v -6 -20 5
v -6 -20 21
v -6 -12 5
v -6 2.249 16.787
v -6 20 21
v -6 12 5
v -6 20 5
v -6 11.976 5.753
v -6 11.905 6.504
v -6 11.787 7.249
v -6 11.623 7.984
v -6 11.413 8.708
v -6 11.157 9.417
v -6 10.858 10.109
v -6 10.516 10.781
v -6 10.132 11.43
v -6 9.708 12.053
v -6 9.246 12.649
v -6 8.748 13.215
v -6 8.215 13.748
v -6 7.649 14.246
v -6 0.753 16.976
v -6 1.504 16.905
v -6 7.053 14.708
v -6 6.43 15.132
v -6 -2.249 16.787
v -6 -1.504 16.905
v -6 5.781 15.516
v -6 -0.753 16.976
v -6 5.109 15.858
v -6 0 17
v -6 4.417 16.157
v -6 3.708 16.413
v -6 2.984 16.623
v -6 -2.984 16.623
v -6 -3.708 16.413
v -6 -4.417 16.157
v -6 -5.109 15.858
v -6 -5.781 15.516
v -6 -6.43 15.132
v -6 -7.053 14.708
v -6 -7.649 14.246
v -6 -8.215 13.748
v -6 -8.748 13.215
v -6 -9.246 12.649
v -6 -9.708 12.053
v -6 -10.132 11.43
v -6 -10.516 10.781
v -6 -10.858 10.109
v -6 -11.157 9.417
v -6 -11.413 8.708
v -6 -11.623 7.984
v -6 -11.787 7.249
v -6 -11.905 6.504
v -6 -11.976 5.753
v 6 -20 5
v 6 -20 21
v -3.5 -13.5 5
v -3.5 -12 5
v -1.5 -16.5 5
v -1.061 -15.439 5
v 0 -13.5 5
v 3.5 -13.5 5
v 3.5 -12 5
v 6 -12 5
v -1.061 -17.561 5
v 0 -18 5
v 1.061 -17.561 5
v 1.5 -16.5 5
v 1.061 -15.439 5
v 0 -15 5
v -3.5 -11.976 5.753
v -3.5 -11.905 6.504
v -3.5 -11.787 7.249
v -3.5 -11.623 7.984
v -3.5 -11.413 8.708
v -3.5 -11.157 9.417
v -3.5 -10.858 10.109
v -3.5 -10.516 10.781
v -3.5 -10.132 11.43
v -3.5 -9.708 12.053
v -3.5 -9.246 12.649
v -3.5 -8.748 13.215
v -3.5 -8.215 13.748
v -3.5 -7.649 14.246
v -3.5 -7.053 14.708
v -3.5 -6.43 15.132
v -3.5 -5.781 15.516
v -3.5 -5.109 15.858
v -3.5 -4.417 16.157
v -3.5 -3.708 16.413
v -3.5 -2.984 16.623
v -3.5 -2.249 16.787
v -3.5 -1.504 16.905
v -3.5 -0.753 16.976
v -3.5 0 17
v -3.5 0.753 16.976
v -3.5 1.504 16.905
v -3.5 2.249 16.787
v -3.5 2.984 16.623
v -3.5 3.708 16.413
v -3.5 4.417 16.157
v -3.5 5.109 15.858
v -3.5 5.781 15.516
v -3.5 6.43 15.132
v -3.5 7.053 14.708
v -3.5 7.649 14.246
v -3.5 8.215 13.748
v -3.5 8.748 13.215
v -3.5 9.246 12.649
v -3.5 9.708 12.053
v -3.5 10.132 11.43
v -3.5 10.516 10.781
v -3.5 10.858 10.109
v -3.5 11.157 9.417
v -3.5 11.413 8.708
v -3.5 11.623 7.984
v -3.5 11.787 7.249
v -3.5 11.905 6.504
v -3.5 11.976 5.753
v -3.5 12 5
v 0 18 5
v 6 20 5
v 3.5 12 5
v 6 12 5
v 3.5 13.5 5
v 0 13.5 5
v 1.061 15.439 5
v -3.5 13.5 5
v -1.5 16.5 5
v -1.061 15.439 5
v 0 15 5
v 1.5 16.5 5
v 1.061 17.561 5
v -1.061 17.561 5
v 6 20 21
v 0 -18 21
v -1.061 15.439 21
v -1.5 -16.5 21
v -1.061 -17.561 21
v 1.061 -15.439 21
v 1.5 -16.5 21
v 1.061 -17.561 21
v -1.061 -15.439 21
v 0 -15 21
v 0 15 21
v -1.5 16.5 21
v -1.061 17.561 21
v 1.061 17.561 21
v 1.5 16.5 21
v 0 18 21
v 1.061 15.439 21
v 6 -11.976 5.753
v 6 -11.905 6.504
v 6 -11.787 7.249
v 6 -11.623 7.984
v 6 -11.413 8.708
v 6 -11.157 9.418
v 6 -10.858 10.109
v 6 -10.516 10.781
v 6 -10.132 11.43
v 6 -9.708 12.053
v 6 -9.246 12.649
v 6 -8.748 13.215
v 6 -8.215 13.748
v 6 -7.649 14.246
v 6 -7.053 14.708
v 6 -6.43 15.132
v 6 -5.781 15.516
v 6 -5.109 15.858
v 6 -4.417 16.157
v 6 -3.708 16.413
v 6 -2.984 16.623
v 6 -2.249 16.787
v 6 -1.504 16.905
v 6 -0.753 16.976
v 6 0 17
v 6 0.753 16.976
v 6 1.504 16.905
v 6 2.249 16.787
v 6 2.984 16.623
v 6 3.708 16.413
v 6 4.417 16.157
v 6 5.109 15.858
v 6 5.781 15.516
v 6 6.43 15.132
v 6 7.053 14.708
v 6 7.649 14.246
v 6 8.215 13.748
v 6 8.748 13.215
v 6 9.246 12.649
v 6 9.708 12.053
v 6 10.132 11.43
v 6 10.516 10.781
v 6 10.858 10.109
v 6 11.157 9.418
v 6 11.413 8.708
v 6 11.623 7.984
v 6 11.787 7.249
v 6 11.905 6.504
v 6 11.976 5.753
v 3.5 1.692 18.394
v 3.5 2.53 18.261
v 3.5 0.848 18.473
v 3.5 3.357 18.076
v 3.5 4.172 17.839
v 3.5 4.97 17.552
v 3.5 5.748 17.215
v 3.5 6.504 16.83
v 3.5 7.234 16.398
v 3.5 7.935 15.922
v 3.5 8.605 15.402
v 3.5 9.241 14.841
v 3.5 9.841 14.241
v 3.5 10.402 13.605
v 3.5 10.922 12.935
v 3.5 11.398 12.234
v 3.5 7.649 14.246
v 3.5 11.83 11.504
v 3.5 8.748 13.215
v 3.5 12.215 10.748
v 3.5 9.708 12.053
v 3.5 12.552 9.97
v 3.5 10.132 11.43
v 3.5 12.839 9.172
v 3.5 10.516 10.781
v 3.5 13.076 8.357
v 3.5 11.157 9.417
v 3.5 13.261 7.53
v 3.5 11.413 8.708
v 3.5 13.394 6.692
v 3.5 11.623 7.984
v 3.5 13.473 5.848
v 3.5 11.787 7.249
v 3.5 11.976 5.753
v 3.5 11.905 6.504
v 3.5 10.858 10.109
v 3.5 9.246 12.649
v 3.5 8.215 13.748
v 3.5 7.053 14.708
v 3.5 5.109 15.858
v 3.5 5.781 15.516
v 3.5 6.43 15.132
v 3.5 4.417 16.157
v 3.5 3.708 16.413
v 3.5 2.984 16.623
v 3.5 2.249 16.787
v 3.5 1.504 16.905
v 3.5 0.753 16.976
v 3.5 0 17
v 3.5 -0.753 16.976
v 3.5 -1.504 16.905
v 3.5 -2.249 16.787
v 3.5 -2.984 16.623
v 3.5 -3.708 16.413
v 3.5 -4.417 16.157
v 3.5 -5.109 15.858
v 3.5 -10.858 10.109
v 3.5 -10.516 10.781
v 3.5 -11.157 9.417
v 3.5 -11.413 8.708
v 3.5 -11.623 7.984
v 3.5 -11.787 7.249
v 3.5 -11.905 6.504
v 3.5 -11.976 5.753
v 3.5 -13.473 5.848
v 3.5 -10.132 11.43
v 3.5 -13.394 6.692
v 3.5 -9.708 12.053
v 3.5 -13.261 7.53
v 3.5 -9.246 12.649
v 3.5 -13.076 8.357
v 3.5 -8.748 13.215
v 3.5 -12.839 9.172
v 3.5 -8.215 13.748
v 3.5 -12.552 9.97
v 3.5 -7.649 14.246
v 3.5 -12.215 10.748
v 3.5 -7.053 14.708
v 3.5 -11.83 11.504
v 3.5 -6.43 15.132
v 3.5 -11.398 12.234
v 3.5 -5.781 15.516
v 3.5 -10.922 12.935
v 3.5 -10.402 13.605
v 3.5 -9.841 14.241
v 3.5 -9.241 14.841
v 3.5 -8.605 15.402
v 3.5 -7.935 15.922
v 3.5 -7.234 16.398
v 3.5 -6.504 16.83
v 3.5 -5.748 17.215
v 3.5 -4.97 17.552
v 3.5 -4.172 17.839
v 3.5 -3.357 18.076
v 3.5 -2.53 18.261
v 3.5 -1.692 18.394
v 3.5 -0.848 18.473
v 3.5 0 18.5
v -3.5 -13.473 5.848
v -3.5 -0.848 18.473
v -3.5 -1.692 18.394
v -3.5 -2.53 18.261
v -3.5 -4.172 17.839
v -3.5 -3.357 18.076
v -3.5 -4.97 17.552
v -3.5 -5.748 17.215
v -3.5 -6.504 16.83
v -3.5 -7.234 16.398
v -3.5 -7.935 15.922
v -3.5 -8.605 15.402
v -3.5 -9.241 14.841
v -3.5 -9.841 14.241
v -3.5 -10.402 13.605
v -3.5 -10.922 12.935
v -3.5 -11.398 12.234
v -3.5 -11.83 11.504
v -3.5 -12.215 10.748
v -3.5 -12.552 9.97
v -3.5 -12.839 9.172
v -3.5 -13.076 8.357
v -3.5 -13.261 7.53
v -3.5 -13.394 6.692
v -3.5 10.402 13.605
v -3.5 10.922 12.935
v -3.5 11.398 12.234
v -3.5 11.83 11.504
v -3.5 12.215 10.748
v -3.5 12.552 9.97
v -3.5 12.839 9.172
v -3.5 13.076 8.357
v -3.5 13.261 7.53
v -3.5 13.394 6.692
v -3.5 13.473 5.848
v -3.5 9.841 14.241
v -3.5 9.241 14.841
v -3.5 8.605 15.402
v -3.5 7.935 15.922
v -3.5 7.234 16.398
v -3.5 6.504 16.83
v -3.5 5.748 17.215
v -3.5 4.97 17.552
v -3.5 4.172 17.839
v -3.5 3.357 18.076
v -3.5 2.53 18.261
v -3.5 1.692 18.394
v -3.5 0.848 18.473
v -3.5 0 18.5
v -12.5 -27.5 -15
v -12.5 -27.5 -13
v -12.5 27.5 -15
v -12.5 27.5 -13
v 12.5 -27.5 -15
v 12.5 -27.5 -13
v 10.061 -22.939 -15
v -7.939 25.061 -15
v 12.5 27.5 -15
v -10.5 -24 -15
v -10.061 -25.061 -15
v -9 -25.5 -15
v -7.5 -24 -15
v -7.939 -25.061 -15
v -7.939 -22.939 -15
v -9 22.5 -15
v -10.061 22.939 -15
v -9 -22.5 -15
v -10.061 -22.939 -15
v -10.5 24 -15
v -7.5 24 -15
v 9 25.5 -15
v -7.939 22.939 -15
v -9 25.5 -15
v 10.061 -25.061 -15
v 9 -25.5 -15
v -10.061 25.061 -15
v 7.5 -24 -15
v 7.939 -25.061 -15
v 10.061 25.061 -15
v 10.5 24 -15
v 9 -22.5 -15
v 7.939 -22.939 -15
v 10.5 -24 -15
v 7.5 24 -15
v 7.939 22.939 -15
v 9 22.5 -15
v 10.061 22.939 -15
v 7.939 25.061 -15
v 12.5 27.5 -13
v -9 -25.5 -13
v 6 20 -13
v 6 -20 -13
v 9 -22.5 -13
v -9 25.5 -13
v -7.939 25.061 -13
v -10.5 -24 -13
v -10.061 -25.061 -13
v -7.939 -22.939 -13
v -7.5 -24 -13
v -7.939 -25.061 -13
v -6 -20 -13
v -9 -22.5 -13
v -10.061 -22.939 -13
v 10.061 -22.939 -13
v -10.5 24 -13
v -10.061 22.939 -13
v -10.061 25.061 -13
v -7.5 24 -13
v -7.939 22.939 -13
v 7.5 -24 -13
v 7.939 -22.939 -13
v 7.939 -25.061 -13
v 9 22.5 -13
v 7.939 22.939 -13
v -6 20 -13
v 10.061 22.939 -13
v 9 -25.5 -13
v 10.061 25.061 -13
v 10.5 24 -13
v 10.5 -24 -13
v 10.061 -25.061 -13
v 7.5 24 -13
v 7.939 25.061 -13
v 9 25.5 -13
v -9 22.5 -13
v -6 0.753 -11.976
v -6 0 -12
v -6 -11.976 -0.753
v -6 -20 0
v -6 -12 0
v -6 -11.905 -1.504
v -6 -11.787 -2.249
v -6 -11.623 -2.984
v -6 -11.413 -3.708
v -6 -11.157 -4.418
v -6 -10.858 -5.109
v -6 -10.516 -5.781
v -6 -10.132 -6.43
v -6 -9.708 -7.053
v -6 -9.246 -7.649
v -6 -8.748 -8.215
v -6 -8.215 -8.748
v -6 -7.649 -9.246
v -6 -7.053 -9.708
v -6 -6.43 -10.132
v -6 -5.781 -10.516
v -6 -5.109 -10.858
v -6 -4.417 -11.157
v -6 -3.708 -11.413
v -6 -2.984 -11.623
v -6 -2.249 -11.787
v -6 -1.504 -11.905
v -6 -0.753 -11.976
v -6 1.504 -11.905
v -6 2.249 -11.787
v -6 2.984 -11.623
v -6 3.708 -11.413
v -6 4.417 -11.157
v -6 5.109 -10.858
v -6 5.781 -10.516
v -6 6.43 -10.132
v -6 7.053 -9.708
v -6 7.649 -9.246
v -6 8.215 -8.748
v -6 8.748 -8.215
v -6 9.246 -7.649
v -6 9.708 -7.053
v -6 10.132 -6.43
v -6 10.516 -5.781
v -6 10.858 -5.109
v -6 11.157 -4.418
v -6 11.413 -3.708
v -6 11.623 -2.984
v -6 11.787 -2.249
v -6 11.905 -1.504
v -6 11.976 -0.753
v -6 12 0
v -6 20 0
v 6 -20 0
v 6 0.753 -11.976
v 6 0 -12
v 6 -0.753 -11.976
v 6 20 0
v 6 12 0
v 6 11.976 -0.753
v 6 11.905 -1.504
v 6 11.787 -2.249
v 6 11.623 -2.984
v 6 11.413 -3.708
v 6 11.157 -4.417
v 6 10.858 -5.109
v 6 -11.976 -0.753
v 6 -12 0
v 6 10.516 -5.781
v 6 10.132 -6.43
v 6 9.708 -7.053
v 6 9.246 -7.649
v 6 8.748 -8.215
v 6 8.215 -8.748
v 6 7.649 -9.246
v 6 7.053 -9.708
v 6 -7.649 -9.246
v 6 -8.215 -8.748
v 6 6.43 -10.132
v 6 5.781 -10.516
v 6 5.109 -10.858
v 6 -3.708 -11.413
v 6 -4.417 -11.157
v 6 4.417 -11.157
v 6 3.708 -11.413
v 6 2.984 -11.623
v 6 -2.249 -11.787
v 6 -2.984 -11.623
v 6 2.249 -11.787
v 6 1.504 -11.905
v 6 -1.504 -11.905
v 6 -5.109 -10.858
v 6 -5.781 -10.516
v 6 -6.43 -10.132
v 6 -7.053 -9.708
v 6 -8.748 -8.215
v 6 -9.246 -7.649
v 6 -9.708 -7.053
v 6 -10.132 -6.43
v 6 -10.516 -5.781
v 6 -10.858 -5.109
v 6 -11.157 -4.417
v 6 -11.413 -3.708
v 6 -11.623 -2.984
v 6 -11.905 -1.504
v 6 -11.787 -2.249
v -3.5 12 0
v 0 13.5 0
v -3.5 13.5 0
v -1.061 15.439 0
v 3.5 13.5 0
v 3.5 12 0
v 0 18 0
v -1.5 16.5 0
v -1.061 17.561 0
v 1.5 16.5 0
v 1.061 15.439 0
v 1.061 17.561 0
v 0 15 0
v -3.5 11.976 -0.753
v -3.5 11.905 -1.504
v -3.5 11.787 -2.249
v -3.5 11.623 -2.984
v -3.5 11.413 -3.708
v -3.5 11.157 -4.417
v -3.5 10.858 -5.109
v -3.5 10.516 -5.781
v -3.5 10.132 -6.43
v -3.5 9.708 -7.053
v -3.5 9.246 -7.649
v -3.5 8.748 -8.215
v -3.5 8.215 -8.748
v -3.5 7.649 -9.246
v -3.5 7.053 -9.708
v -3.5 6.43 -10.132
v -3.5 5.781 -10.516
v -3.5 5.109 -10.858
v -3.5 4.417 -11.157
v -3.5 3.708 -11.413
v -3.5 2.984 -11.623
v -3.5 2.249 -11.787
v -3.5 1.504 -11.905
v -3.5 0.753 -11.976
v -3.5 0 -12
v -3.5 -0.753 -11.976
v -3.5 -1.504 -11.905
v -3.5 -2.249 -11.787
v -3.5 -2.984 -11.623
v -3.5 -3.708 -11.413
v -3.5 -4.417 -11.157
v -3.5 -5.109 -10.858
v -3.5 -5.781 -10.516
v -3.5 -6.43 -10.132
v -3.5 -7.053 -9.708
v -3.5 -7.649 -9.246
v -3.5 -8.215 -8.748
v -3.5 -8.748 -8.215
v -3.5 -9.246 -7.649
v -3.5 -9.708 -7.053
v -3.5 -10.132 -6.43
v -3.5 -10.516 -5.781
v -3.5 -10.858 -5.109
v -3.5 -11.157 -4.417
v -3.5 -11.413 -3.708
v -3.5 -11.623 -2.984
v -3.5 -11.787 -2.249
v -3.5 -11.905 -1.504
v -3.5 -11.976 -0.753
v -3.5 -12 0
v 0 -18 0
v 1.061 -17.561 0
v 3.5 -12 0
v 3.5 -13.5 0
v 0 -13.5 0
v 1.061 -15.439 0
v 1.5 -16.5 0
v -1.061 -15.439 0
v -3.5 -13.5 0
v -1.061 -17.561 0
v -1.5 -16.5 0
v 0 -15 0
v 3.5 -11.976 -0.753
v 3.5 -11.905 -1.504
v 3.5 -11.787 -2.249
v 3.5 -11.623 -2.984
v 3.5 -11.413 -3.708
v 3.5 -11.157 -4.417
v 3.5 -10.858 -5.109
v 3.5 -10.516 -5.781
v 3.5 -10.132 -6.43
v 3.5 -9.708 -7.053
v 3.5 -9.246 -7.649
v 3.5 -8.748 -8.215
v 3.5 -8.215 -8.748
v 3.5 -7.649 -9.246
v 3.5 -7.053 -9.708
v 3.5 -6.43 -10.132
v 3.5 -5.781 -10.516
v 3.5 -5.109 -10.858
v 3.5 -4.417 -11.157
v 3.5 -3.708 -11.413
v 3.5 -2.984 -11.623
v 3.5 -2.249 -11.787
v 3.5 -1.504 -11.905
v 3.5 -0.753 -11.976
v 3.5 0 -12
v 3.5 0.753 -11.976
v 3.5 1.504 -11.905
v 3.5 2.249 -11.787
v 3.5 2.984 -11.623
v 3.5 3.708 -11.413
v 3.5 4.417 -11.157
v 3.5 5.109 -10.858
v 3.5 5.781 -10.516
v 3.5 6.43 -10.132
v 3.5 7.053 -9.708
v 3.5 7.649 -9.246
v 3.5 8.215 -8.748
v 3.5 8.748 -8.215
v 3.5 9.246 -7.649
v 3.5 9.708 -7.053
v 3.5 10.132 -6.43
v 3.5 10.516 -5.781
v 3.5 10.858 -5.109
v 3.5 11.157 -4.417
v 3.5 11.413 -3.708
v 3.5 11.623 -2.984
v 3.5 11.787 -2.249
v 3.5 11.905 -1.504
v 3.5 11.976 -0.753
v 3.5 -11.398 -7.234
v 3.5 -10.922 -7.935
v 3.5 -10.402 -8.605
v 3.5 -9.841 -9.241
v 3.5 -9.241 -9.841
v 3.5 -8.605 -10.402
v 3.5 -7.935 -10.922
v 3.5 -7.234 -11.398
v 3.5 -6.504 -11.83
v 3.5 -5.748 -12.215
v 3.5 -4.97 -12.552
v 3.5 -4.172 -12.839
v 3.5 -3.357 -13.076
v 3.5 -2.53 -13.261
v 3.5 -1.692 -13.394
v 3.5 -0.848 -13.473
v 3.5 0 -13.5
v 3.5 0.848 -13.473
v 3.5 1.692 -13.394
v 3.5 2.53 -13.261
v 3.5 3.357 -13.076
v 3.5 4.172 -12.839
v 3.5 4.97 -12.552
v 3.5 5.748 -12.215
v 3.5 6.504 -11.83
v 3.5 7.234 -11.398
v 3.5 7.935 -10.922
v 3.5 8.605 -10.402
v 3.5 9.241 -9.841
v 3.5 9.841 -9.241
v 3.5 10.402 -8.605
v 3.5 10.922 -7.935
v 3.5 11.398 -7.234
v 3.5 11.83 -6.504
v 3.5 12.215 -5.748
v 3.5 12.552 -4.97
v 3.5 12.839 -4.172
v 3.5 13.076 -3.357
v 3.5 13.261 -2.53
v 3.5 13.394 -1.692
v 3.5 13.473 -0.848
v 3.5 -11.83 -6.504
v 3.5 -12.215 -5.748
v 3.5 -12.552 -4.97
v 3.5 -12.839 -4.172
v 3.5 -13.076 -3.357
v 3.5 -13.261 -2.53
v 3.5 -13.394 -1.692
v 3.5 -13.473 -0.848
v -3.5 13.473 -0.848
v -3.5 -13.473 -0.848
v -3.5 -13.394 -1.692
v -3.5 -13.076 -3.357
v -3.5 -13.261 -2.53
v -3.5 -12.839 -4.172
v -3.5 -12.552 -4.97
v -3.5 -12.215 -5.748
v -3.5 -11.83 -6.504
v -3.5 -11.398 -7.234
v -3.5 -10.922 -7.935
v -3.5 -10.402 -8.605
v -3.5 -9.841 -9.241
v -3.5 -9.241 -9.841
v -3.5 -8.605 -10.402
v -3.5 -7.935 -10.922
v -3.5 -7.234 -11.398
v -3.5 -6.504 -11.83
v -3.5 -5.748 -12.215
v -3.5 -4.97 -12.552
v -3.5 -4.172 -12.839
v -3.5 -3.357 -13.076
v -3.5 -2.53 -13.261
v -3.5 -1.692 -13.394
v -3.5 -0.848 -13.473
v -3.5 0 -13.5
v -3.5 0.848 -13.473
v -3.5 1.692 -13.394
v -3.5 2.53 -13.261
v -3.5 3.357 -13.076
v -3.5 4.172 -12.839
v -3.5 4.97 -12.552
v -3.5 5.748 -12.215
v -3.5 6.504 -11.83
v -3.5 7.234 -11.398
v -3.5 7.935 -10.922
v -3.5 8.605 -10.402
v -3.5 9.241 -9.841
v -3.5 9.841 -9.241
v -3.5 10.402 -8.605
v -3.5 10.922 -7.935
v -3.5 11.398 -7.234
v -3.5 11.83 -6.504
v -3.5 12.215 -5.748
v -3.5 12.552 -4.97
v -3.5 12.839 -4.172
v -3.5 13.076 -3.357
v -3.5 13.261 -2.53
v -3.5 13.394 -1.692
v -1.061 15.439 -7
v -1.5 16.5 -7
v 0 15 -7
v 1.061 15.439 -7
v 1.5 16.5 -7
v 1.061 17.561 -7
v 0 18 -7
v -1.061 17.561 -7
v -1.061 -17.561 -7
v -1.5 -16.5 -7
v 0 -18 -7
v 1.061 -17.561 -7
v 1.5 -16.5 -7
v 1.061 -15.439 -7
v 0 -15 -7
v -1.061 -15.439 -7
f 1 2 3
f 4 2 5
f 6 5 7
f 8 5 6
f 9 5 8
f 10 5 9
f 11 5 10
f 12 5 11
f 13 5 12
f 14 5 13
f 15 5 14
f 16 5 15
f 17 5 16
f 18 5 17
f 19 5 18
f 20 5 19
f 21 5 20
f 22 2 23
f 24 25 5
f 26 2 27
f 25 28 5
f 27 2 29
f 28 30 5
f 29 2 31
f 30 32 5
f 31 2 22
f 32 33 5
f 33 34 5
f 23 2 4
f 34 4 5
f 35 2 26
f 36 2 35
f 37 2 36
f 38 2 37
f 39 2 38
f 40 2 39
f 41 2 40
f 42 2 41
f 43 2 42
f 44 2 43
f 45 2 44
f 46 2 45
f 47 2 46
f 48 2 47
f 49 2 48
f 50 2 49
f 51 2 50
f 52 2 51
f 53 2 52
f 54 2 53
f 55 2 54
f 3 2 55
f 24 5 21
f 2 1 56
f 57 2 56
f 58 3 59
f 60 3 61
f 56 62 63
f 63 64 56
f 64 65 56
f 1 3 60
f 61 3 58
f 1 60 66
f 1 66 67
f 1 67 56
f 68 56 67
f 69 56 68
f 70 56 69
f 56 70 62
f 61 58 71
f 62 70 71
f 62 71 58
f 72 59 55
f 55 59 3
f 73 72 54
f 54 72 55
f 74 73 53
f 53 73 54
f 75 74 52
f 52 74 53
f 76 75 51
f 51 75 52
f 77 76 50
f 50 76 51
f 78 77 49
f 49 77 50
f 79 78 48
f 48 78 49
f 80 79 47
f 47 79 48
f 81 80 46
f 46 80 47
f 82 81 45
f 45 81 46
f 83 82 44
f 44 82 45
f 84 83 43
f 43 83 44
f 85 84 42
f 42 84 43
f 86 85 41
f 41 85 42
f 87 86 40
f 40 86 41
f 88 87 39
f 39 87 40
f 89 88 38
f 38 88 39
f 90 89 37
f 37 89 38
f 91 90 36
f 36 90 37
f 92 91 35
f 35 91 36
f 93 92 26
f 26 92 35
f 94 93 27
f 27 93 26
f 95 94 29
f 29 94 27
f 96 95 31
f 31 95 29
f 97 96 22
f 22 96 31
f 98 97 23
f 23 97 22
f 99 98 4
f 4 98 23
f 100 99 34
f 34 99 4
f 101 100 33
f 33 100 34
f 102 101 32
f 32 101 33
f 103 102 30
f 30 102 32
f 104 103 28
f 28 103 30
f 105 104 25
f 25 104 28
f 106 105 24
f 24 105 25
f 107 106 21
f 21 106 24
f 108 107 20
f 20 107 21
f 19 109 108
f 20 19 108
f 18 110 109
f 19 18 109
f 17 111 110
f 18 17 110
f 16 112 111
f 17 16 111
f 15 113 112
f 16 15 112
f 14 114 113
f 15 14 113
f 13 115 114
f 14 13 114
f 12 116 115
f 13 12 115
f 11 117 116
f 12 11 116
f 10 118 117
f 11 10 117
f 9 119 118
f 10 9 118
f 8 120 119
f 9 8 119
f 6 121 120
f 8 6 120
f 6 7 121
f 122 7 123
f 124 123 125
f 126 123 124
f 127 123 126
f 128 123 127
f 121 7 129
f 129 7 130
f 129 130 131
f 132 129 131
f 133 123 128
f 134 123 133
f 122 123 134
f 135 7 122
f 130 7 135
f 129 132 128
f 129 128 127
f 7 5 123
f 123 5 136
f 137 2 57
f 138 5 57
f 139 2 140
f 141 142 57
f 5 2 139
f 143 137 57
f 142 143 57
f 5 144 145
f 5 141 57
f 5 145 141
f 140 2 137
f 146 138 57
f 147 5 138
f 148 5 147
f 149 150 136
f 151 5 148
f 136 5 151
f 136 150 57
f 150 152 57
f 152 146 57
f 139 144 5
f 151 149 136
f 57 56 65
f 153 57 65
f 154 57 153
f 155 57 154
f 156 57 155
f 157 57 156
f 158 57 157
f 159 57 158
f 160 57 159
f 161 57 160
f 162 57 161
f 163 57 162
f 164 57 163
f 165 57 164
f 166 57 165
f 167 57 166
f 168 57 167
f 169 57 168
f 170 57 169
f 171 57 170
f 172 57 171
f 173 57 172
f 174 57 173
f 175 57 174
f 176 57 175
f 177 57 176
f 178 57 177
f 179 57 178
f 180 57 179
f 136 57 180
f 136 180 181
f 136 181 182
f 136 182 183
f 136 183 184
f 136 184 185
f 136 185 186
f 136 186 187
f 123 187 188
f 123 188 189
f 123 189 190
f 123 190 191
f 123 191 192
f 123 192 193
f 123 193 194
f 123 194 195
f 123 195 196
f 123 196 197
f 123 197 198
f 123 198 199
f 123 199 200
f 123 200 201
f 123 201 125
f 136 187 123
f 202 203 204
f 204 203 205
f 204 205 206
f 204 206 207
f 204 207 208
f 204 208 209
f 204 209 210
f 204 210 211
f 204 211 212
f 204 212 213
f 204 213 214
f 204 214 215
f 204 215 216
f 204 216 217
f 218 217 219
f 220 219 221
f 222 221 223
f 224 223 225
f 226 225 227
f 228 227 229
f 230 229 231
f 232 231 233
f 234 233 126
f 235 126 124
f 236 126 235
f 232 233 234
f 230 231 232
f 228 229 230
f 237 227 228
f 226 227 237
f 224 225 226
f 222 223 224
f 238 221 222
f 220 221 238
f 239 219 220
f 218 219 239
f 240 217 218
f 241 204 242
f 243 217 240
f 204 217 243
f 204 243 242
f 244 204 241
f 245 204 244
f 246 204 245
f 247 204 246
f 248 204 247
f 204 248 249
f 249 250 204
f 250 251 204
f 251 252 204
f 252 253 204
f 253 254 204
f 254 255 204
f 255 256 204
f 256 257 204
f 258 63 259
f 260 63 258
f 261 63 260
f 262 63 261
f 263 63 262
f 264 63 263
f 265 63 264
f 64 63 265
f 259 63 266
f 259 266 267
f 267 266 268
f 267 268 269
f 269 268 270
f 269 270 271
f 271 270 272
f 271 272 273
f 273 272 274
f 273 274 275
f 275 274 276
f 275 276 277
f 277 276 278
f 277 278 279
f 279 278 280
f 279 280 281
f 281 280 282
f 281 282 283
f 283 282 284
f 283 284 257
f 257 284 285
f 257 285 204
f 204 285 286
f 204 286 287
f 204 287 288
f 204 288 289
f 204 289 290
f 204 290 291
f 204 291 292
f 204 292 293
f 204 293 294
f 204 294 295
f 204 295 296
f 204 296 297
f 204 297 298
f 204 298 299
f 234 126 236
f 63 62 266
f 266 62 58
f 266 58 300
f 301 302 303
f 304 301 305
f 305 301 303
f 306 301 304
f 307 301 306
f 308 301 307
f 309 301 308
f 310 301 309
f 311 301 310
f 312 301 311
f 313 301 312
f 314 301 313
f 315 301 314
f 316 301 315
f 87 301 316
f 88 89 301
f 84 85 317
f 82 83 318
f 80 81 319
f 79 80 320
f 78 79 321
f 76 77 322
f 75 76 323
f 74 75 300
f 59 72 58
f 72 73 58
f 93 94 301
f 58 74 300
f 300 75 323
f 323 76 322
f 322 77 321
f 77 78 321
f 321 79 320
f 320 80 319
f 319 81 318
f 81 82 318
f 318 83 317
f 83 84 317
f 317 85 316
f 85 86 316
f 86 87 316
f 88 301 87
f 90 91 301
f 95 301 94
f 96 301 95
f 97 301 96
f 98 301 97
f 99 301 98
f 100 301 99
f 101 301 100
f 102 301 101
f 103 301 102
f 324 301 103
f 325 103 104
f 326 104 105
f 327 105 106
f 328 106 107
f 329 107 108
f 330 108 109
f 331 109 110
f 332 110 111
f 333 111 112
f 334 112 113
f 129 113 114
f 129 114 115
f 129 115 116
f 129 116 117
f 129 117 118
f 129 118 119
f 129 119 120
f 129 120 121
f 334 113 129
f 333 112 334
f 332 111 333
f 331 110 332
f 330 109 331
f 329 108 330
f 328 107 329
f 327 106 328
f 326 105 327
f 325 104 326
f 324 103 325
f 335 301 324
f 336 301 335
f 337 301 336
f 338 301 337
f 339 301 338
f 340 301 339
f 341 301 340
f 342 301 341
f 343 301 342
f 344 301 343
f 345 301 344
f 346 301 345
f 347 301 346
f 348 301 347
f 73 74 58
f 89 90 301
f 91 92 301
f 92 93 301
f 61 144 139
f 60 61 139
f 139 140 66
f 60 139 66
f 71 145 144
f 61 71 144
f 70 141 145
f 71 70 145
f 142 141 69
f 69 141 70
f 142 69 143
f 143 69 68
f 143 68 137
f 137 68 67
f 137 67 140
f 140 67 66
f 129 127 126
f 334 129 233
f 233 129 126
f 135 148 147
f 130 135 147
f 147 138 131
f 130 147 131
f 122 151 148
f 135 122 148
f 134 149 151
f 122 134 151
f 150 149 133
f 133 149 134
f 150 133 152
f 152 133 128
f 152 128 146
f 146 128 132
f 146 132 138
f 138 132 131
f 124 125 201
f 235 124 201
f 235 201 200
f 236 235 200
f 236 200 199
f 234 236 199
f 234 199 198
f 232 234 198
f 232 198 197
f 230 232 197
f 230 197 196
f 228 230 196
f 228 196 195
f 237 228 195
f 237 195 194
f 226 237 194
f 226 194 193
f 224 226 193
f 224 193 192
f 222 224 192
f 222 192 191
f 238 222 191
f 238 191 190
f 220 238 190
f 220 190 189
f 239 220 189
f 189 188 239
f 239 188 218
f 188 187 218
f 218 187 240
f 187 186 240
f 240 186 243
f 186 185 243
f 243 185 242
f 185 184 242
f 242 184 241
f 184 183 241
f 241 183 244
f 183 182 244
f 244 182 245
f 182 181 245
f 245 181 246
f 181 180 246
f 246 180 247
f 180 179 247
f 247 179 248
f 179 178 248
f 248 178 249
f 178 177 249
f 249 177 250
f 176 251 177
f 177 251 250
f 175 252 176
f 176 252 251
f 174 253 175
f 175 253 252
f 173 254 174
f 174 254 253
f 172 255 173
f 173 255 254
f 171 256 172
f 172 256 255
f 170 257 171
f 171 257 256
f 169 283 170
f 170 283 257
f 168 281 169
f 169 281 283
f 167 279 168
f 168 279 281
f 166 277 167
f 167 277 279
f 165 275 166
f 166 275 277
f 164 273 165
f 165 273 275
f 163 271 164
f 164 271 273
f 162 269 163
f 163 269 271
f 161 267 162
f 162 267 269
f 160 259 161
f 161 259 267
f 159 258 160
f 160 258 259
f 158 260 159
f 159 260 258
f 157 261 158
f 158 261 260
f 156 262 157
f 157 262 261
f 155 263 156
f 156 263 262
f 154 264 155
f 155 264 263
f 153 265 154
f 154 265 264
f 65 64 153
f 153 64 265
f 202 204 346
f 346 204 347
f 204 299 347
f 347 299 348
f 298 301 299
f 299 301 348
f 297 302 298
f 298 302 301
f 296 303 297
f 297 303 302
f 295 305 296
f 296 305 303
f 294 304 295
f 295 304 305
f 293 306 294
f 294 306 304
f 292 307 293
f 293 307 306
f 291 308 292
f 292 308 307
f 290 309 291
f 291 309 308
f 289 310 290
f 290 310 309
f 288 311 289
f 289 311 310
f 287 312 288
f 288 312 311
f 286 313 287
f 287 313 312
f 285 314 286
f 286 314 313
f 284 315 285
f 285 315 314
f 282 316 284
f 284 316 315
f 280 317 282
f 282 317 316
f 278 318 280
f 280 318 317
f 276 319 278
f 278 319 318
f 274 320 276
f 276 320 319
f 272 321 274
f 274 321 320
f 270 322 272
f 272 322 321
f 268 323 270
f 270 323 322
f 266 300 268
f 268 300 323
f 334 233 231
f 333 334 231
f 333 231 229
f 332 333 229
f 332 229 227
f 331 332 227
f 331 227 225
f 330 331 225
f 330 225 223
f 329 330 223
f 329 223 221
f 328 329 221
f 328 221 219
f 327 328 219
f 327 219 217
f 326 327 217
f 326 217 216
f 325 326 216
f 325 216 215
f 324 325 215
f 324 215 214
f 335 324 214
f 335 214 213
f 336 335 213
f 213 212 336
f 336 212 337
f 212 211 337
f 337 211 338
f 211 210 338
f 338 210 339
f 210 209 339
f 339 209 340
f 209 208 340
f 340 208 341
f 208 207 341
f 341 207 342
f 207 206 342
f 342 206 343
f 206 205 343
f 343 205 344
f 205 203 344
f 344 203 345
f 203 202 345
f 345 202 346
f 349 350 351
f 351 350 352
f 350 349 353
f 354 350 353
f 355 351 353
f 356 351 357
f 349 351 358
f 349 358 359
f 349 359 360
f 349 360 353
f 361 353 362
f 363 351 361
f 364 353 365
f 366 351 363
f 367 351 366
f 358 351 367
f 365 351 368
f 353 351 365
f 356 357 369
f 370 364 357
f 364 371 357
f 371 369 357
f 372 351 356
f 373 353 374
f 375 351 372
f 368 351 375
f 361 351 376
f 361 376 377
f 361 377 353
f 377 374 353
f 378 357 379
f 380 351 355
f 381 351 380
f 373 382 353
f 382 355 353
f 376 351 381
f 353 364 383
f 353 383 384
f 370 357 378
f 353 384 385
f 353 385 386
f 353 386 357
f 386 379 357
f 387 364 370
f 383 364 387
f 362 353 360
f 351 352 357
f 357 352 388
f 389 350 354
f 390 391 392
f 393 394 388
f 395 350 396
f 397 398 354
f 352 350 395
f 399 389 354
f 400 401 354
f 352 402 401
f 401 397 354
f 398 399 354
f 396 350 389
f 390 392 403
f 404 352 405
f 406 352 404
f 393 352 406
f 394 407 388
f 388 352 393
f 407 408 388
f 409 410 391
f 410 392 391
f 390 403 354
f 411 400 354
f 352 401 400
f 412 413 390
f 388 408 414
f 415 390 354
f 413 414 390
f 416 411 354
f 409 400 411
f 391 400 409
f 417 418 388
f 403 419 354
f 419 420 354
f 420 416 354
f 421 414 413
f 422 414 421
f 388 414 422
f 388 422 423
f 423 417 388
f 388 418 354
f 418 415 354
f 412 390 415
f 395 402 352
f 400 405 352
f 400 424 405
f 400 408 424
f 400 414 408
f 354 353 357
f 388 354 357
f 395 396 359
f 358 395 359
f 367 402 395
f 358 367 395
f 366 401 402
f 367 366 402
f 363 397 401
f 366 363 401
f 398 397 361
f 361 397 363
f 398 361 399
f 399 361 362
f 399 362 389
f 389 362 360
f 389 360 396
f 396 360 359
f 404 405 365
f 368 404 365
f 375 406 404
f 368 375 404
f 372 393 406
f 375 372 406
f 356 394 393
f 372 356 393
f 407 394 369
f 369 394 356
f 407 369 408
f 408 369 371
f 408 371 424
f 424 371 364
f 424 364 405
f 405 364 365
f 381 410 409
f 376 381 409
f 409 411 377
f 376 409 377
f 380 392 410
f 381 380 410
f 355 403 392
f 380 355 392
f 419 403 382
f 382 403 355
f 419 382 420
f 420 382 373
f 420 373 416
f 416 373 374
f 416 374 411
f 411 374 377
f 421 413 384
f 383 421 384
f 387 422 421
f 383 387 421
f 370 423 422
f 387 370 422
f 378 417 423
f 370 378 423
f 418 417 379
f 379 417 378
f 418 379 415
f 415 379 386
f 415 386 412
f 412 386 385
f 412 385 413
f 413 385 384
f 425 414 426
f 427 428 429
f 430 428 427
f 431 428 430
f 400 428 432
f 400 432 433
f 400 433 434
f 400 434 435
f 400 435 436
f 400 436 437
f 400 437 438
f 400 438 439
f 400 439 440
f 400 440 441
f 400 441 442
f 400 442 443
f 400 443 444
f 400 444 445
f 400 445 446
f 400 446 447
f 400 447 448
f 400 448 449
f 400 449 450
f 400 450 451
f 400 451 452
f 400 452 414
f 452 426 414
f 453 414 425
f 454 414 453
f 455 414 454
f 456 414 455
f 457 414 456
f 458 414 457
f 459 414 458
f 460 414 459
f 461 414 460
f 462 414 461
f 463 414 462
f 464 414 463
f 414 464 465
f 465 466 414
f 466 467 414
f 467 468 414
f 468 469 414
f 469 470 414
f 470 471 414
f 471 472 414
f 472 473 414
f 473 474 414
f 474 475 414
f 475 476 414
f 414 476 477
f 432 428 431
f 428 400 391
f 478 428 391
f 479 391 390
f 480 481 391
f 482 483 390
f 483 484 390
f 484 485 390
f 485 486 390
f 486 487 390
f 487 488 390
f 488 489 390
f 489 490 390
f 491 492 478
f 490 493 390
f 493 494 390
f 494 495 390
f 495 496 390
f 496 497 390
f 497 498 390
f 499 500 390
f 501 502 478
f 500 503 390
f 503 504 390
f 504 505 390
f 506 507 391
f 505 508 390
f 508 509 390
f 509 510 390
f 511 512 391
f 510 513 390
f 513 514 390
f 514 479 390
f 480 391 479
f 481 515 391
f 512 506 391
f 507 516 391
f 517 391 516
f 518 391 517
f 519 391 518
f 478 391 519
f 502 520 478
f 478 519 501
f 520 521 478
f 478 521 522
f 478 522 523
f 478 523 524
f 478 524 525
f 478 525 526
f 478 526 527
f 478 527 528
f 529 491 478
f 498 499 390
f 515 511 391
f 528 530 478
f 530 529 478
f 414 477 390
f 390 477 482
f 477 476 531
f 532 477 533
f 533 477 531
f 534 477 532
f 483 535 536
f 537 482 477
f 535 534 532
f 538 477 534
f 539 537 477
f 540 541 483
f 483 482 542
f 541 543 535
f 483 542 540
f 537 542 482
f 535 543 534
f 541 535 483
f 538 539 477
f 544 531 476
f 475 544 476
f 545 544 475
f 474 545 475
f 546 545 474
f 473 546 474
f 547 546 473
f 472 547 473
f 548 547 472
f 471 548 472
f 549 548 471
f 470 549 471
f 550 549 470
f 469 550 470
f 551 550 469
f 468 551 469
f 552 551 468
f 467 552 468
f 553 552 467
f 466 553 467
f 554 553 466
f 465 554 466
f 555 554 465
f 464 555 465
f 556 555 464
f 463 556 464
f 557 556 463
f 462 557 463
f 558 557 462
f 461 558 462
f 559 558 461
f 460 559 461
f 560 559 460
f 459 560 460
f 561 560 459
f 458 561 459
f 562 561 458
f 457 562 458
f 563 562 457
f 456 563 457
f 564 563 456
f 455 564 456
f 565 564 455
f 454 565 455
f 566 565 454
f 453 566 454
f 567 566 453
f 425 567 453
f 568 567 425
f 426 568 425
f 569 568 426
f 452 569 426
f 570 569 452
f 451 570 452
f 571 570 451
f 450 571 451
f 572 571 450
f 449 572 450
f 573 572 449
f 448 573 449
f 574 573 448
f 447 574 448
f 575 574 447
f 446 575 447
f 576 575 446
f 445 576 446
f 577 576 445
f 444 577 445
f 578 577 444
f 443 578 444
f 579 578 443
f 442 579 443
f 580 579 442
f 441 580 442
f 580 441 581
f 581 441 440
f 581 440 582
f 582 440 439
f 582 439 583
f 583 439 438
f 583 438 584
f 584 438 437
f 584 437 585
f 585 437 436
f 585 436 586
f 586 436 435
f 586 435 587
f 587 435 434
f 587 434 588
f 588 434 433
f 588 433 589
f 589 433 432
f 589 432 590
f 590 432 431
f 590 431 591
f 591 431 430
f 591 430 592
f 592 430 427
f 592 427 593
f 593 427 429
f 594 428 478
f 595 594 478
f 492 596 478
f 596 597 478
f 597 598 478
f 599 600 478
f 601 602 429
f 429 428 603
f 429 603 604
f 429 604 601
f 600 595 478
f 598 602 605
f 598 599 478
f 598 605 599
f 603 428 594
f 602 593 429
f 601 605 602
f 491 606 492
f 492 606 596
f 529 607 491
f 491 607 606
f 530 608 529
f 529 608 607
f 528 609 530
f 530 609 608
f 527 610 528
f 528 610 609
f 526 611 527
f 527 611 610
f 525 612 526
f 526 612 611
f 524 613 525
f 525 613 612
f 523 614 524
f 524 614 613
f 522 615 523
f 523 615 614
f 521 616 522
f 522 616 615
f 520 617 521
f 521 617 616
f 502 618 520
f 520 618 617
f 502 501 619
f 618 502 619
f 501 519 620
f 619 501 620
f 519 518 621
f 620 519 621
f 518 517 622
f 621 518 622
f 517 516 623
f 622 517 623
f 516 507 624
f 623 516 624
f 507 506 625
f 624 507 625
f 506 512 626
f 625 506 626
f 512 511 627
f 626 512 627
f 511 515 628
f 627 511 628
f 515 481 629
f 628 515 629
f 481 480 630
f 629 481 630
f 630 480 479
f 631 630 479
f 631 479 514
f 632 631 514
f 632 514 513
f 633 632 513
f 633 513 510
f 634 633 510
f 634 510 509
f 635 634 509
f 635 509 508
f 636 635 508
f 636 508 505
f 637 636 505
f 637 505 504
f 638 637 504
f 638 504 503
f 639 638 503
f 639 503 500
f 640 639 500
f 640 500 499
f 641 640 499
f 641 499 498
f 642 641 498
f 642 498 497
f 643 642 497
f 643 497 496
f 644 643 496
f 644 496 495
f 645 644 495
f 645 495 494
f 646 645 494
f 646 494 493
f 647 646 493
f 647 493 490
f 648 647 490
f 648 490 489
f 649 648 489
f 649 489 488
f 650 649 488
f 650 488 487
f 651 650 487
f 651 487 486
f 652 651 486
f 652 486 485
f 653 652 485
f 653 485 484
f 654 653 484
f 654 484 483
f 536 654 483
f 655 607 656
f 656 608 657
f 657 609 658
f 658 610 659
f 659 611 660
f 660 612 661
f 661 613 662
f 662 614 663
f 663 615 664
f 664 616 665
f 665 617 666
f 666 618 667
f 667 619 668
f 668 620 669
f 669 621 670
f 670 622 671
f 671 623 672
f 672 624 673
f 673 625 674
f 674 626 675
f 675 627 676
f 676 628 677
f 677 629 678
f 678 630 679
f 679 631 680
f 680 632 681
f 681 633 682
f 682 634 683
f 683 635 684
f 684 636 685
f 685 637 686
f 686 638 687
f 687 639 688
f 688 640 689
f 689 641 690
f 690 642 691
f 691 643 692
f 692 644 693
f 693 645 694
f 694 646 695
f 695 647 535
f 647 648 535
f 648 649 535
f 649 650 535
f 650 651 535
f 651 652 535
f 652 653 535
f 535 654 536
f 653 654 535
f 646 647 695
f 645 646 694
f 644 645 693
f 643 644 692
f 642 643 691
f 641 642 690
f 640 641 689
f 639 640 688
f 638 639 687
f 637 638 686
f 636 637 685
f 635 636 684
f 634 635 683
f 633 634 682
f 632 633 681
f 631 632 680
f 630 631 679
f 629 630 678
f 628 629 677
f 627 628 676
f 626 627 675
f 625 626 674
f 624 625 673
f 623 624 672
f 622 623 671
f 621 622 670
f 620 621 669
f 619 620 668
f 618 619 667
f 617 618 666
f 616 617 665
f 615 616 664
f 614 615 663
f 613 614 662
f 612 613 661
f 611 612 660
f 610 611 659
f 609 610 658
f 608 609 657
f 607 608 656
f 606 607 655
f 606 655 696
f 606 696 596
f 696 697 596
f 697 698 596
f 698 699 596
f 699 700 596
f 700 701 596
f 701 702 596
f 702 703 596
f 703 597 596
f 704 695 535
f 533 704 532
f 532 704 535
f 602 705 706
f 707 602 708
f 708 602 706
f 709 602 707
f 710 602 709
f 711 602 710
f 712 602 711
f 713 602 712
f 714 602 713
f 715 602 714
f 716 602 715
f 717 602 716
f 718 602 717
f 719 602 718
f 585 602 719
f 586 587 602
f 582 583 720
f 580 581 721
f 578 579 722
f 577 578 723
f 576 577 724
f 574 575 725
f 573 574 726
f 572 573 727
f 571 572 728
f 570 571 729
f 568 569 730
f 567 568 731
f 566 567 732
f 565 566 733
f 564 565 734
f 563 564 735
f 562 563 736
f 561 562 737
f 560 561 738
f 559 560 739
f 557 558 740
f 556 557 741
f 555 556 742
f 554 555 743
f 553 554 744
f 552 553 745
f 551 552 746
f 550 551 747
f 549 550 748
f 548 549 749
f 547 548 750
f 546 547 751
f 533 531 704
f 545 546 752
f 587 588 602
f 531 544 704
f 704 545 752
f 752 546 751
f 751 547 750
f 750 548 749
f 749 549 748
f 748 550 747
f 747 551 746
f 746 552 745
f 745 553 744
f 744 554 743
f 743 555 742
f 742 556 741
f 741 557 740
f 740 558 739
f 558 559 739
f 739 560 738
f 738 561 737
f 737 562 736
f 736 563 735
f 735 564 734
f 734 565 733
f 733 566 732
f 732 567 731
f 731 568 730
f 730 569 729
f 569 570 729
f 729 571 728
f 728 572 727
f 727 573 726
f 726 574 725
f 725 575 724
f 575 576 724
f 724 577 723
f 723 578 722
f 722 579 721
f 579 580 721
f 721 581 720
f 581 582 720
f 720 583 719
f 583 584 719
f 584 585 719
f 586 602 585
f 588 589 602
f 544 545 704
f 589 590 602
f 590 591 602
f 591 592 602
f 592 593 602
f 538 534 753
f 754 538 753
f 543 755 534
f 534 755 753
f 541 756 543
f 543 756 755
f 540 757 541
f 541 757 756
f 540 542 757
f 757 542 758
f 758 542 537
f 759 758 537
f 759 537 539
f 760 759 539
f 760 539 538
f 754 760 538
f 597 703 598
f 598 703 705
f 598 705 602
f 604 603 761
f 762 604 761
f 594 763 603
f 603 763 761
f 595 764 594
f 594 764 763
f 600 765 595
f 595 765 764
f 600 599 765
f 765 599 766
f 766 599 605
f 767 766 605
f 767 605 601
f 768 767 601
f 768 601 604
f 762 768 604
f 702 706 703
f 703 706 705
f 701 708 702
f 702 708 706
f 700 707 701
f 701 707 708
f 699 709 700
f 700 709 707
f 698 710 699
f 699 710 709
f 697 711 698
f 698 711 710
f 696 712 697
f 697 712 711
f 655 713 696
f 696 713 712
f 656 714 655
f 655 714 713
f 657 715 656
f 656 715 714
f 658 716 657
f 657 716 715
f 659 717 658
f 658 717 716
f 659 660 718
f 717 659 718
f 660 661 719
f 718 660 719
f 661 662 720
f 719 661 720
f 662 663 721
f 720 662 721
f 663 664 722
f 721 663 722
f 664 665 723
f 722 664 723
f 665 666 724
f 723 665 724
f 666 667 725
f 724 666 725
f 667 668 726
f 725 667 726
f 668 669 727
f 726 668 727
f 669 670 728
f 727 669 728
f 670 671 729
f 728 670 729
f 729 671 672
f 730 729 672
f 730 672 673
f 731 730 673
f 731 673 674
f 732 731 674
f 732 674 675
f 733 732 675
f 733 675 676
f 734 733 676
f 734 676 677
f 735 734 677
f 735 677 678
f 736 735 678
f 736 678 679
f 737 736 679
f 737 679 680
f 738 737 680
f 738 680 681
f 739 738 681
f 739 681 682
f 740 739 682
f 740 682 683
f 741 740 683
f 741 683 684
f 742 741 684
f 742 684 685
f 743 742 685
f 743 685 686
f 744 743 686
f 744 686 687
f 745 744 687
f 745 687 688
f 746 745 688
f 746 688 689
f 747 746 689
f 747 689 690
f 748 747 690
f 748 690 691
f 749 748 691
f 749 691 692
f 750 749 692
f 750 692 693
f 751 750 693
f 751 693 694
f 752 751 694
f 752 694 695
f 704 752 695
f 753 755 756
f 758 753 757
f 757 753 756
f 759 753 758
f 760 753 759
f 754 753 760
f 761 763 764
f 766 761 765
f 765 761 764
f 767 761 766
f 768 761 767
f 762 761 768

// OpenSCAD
// file: ../filterMount_532nm_Pass_bottom.scad
use <write.scad>

module 532nmPassFilter(){
	rotate([0,90,0]) {
		cylinder(r=13.25, h=6,$fn=100,center=true);
	}
}

module 532nmPassFilterBottom(){
	difference(){
		//base
		translate([0,0,-7]) color([0.8,1,.6]) cube(size=[12,40,14],center=true);	
		//filterHole
		rotate([0,90,0]) {
			cylinder(r=13.5, h=7,$fn=100,center=true);
		}
		rotate([0,90,0]) {
			cylinder(r=12, h=20,$fn=100,center=true);
		}
		//screwHoles
		translate([0,16.5,-3]) color([1,0,0]) cylinder(h=8,r=1.5,$fn=8,center=true);
		translate([0,-16.5,-3]) color([1,0,0]) cylinder(h=8,r=1.5,$fn=8,center=true);
	}
	difference(){
		//basePlate
		translate([0,0,-14]) color([0.8,1,.6]) cube(size=[25,55,2],center=true);	
		//filterHole
		rotate([0,90,0]) {
			cylinder(r=13.5, h=7,$fn=100,center=true);
		}
		//screwHoles
		translate([9,24,-14]) color([1,0,0]) cylinder(h=5,r=1.5,$fn=8,center=true);
		translate([9,-24,-14]) color([1,0,0]) cylinder(h=5,r=1.5,$fn=8,center=true);
		translate([-9,24,-14]) color([1,0,0]) cylinder(h=5,r=1.5,$fn=8,center=true);
		translate([-9,-24,-14]) color([1,0,0]) cylinder(h=5,r=1.5,$fn=8,center=true);
	}
	rotate([90,0,90]){
		translate([0,-9,4]){
//			write("532nmPassFilter",h=3,t=3,center=true);
		}
	}
}
translate([0,0,0]){
	532nmPassFilterBottom();
}

//532nmPassFilter();
// file: ../filterMount_532nm_Pass_top.scad
module 532nmPassFilter(){
	rotate([0,90,0]) {
		cylinder(r=13.25, h=6,$fn=100,center=true);
	}
}

module 532nmPassFilterTop(){
	difference(){
		//filterHolderTop
		translate([0,0,8]) color([0.8,1,.6]) cube(size=[12,40,16],center=true);	
		//filterHole
		rotate([0,90,0]) {
			cylinder(r=13.5, h=7,$fn=100,center=true);
		}
		rotate([0,90,0]) {
			cylinder(r=12, h=20,$fn=100,center=true);
		}
		//screwHoles
		translate([0,16.5,8]) color([1,0,0]) cylinder(h=17,r=1.5,$fn=8,center=true);
		translate([0,-16.5,8]) color([1,0,0]) cylinder(h=17,r=1.5,$fn=8,center=true);
	}
}
translate([0,0,0]){
	532nmPassFilterTop();
}

//532nmPassFilter();
// main file
use <../filterMount_532nm_Pass_top.scad>
use <../filterMount_532nm_Pass_bottom.scad>

translate([0,0,5]){
	532nmPassFilterTop();
}
translate([0,0,0]){
	532nmPassFilterBottom();
}
